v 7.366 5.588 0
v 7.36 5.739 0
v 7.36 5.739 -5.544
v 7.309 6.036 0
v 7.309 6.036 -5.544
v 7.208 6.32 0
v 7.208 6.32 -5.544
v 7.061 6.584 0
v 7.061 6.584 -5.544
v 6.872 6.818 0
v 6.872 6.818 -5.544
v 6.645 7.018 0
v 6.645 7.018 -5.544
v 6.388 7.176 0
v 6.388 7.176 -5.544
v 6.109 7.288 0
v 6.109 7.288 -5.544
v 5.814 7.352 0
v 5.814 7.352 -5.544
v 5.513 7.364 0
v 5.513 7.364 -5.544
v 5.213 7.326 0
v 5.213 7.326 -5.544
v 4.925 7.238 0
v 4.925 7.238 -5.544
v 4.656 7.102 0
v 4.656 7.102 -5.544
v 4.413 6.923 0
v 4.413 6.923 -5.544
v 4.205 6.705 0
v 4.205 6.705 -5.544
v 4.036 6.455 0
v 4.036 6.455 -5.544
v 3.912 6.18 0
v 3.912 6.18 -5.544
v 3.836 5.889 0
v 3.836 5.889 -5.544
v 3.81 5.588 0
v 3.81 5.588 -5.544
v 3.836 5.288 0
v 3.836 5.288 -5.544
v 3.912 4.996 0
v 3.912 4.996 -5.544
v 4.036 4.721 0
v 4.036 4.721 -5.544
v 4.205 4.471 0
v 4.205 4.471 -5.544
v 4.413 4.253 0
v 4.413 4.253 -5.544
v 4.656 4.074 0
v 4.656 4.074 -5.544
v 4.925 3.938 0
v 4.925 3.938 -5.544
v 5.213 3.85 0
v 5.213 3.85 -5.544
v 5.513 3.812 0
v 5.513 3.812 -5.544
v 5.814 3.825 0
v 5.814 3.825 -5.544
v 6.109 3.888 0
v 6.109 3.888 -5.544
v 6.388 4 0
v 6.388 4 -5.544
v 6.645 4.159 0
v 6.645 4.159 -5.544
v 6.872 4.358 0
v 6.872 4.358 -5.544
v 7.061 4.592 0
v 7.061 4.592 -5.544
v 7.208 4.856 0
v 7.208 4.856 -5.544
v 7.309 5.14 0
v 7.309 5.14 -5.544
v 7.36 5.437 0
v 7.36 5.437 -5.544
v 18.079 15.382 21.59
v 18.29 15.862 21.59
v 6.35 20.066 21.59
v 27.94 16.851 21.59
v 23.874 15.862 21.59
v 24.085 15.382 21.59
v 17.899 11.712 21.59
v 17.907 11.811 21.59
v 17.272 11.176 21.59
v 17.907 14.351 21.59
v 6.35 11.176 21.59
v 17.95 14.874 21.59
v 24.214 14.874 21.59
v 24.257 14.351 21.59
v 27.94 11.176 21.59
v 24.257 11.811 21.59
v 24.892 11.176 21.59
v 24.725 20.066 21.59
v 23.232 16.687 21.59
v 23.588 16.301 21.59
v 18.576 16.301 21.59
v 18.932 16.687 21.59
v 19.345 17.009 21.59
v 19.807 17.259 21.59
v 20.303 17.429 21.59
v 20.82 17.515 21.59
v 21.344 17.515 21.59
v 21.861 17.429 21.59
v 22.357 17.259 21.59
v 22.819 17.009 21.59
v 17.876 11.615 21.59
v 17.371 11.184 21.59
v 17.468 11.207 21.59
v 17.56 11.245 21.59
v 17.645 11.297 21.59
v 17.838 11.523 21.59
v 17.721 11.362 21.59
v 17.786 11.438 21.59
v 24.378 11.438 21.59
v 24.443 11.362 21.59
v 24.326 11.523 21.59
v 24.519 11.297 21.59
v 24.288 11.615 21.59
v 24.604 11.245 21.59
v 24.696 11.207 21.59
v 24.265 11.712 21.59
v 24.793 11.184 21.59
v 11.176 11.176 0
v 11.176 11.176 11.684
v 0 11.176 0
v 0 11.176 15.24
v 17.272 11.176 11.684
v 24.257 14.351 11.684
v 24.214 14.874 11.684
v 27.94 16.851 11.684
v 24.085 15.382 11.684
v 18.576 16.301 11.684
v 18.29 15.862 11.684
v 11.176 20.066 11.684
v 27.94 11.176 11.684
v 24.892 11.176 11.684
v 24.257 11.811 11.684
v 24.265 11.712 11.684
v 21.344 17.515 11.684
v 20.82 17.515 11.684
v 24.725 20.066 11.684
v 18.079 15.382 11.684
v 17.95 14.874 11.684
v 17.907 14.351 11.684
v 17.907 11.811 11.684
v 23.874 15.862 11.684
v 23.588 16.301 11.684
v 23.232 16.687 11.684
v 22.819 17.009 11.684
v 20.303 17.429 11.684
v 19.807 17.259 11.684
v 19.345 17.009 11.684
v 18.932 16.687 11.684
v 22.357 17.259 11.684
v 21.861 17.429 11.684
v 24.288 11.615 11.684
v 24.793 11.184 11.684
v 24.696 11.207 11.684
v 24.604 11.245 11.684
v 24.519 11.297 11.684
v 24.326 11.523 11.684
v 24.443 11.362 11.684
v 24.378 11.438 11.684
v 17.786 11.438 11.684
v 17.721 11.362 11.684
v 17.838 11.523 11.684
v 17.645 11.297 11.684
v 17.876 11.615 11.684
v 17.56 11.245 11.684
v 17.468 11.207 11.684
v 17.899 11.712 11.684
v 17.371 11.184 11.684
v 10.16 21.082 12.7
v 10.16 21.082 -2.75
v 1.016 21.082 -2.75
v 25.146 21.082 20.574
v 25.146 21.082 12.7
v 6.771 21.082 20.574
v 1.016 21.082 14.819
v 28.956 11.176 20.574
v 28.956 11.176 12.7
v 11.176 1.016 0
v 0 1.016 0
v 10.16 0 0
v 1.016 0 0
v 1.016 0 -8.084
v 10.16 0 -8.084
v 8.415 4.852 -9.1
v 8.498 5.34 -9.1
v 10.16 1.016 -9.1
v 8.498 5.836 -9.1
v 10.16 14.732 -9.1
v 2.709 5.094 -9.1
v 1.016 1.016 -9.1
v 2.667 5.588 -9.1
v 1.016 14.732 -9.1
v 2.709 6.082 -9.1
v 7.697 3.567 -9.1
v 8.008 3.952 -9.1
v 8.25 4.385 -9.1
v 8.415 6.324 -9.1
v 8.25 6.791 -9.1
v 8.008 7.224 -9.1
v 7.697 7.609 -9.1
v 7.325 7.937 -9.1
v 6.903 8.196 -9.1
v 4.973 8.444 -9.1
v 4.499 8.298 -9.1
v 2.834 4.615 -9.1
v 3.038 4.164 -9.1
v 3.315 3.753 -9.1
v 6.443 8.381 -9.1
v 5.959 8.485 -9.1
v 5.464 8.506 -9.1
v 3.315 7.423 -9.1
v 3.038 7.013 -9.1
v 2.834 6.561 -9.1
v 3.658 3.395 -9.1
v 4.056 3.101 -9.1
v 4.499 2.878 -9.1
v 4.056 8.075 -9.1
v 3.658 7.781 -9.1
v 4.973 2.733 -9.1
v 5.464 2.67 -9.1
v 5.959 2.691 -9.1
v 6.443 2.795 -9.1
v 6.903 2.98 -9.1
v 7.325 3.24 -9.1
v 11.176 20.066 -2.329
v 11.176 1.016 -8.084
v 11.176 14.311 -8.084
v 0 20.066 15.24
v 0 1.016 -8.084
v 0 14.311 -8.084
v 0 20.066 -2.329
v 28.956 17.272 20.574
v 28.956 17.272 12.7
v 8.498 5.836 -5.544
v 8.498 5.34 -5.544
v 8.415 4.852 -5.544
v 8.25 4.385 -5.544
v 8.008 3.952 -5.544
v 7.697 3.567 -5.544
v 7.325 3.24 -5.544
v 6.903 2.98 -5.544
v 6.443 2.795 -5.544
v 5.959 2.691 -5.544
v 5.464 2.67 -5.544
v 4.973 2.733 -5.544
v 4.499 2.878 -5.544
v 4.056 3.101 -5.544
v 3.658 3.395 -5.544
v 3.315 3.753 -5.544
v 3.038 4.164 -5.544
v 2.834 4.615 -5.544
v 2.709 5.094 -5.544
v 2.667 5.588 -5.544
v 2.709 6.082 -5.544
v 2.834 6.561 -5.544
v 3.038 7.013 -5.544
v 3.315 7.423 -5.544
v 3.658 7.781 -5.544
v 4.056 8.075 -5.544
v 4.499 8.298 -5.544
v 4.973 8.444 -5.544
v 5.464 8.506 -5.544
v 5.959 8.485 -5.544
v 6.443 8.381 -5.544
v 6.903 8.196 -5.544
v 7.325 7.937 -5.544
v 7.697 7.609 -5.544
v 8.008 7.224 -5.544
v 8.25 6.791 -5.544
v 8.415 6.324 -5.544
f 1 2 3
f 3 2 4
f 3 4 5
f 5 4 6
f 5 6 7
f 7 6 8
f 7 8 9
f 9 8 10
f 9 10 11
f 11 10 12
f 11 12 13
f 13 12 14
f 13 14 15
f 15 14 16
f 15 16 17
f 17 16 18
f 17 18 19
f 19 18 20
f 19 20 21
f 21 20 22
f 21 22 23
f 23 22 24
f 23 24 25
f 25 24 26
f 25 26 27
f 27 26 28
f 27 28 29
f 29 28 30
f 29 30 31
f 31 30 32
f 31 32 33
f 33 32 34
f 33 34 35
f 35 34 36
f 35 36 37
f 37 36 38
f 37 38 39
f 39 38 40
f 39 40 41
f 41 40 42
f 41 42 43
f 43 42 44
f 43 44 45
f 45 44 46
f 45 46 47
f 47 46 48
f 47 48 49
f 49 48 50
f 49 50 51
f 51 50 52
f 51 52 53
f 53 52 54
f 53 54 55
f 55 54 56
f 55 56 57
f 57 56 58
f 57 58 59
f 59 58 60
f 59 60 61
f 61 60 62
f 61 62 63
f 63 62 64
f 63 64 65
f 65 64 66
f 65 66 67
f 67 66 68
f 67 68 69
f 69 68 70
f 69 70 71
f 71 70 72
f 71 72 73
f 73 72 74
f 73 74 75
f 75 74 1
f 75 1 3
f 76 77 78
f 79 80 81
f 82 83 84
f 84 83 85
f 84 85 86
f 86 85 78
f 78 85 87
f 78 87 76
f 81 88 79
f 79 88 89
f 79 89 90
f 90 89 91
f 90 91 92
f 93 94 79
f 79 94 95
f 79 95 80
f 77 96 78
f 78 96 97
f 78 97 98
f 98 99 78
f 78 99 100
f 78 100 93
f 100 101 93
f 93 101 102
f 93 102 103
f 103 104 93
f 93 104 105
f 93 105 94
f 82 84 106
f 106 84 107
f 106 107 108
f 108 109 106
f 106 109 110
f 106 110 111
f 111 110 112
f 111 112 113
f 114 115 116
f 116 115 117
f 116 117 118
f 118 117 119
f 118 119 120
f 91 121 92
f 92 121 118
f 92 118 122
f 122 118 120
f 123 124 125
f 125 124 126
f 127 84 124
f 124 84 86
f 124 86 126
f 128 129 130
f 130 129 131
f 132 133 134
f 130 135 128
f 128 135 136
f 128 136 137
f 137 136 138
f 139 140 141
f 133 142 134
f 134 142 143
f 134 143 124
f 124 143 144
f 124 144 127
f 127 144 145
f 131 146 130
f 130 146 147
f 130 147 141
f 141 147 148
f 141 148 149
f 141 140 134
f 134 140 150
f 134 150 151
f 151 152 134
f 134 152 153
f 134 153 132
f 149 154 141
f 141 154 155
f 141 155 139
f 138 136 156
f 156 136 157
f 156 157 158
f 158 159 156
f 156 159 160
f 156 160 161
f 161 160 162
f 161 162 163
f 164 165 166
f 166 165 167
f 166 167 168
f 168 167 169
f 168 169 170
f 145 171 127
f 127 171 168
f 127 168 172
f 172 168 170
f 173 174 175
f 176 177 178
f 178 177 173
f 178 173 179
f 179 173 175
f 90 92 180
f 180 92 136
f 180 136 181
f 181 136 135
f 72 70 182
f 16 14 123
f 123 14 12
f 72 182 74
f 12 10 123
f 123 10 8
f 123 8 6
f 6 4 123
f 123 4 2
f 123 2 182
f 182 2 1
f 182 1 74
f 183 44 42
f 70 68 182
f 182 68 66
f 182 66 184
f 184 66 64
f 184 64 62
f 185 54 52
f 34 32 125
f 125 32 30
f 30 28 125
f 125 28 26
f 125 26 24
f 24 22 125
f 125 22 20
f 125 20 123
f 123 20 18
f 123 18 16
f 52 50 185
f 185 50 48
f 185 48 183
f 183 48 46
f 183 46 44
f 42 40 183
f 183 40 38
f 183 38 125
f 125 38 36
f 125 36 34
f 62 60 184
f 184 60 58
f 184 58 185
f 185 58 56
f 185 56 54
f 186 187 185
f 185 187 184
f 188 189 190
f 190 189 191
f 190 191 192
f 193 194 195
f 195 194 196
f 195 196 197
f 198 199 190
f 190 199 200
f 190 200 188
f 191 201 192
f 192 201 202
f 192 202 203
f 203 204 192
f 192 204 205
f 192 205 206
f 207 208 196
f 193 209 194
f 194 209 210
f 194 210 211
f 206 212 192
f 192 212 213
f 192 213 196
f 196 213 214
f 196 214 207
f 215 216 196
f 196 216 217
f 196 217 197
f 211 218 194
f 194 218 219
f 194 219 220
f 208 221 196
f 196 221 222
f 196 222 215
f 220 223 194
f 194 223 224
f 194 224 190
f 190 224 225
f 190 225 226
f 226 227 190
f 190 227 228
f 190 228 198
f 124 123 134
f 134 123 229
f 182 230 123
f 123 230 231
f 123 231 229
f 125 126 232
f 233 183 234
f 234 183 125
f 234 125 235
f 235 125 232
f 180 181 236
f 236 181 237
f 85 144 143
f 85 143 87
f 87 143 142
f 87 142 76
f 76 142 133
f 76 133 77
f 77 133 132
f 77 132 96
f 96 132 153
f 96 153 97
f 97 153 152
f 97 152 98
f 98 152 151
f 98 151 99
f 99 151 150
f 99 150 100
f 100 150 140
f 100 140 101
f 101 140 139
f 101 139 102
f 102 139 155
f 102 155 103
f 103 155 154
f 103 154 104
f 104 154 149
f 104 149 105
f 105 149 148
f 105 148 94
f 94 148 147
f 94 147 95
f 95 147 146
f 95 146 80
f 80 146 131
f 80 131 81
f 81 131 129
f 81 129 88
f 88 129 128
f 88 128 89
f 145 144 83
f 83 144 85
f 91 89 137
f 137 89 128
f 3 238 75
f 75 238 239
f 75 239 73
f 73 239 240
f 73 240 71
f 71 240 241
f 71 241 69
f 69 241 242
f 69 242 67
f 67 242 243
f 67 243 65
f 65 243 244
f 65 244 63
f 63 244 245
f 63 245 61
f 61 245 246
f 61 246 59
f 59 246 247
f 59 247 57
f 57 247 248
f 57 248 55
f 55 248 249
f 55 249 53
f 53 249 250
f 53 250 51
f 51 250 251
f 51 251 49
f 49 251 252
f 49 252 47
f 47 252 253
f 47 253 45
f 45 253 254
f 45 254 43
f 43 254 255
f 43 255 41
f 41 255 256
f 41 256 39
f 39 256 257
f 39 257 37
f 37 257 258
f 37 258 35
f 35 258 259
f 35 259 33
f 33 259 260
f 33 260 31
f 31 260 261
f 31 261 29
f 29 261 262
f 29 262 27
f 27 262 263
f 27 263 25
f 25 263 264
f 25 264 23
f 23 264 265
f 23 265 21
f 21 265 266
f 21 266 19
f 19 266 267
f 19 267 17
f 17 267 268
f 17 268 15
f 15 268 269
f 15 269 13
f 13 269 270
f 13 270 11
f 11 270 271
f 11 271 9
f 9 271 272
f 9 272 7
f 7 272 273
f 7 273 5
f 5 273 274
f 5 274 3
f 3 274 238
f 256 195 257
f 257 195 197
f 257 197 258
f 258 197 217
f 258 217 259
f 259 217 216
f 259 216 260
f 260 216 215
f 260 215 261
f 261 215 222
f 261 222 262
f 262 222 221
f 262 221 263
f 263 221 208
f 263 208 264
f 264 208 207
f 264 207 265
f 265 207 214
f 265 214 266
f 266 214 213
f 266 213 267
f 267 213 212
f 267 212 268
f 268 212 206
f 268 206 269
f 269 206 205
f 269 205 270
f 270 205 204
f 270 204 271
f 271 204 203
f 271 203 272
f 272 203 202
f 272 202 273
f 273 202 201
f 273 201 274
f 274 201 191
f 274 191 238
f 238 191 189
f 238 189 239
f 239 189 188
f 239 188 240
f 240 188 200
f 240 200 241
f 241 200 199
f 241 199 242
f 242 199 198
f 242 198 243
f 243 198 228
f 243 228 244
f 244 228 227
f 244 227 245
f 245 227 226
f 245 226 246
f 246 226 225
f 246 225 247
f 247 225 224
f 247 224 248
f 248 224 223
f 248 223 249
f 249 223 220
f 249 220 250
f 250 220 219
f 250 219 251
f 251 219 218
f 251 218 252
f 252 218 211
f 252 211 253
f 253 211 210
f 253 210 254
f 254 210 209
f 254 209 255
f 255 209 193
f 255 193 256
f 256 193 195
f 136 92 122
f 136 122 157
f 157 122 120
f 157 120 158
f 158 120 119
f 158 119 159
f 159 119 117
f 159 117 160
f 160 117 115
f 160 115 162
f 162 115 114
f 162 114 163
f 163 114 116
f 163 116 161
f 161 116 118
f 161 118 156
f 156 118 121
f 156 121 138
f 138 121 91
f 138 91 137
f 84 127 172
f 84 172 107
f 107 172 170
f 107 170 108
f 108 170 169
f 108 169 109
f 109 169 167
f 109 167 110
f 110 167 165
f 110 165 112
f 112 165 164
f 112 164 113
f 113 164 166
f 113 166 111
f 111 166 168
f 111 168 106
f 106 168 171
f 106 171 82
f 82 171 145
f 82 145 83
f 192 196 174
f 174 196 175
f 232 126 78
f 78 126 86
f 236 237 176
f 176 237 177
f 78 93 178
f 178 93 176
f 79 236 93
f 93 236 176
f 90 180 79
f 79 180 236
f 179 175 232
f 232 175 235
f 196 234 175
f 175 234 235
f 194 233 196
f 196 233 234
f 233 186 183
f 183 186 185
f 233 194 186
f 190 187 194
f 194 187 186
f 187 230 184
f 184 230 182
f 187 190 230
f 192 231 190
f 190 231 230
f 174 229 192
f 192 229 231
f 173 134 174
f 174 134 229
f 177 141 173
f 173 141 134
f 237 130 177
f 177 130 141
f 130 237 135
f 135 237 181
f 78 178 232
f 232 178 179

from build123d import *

# Parameters (mm, degrees)
BOSS_EXTRUDE1_DEPTH = 11.176
SKETCH2_W           = 9.906
SKETCH2_H           = 9.906
BOSS_EXTRUDE2_DEPTH = 17.78
CUT_EXTRUDE1_REACH  = 43.411
SKETCH3_R           = 3.175
CUT_EXTRUDE2_REACH  = 49.167
SKETCH4_R           = 1.778
SKETCH5_R           = 2.921
CUT_EXTRUDE3_DEPTH  = 3.556
FILLET8_R           = 0.635
CHAMFER1_SIZE       = 6.35
CHAMFER2_SIZE       = 6.35
CHAMFER3_SIZE       = 3.81
CHAMFER4_SIZE       = 1.016
CHAMFER5_SIZE       = 1.016


# Read off the part's stored shape, not the designer's step: Boss-Extrude1
with BuildPart() as part:
    # Boss-Extrude1 outline → Boss-Extrude1 (new body)
    with BuildSketch(Plane(origin=(0, 0, 0), x_dir=(0, 0, -1), z_dir=(1, 0, 0))):
        Polygon((9.099769579, 0.0001), (9.099769579, 21.082), (-21.59, 21.082), (-21.59, 11.176), (0, 11.176), (0, 0.0001), align=None)
    extrude(amount=BOSS_EXTRUDE1_DEPTH)

    # Sketch2 → Boss-Extrude2 (add)
    with BuildSketch(Plane(origin=(11.176, 0, 0), x_dir=(0, 0, -1), z_dir=(1, 0, 0))):
        with Locations((-16.637, 16.129)):
            Rectangle(SKETCH2_W, SKETCH2_H)
    extrude(amount=BOSS_EXTRUDE2_DEPTH)

    # Sketch3 → Cut-Extrude1 (cut, up to next)
    with BuildSketch(Plane(origin=(0, 0, 11.684), x_dir=(-1, 0, 0), z_dir=(0, 0, -1)), mode=Mode.PRIVATE) as cut_extrude1_sk1:
        with Locations((-21.082, 14.351)):
            Circle(SKETCH3_R)
    cut_extrude1_tool1 = extrude(cut_extrude1_sk1.sketch, amount=-CUT_EXTRUDE1_REACH, mode=Mode.PRIVATE) & part.part
    # Sketch3 → Cut-Extrude1 (cut, up to next)
    with BuildSketch(Plane(origin=(0, 0, 11.684), x_dir=(-1, 0, 0), z_dir=(0, 0, -1)), mode=Mode.PRIVATE) as cut_extrude1_sk2:
        with BuildLine():
            ThreePointArc((-21.082, 11.176), (-23.32706403, 12.10593597), (-24.257, 14.351))
            Line((-24.257, 14.351), (-24.257, 11.176))
            Line((-24.257, 11.176), (-21.082, 11.176))
        make_face()
    cut_extrude1_tool2 = extrude(cut_extrude1_sk2.sketch, amount=-CUT_EXTRUDE1_REACH, mode=Mode.PRIVATE) & part.part
    # Sketch3 → Cut-Extrude1 (cut, up to next)
    with BuildSketch(Plane(origin=(0, 0, 11.684), x_dir=(-1, 0, 0), z_dir=(0, 0, -1)), mode=Mode.PRIVATE) as cut_extrude1_sk3:
        with BuildLine():
            Line((-17.907, 11.176), (-17.907, 14.351))
            ThreePointArc((-17.907, 14.351), (-18.83693597, 12.10593597), (-21.082, 11.176))
            Line((-21.082, 11.176), (-17.907, 11.176))
        make_face()
    cut_extrude1_tool3 = extrude(cut_extrude1_sk3.sketch, amount=-CUT_EXTRUDE1_REACH, mode=Mode.PRIVATE) & part.part
    add(cut_extrude1_tool1.solids().sort_by_distance((21.082, 14.351, 11.684))[0], mode=Mode.SUBTRACT)
    add(cut_extrude1_tool2.solids().sort_by_distance((23.547807, 11.885193, 11.684))[0], mode=Mode.SUBTRACT)
    add(cut_extrude1_tool3.solids().sort_by_distance((18.616193, 11.885193, 11.684))[0], mode=Mode.SUBTRACT)

    # Sketch4 → Cut-Extrude2 (cut, up to next)
    with BuildSketch(Plane(origin=(0, 0, -9.099769579), x_dir=(-1, 0, 0), z_dir=(0, 0, -1)), mode=Mode.PRIVATE) as cut_extrude2_sk1:
        with Locations((-5.588, 5.5881)):
            Circle(SKETCH4_R)
    cut_extrude2_tool1 = extrude(cut_extrude2_sk1.sketch, amount=-CUT_EXTRUDE2_REACH, mode=Mode.PRIVATE) & part.part
    add(cut_extrude2_tool1.solids().sort_by_distance((5.588, 5.5881, -9.09977))[0], mode=Mode.SUBTRACT)

    # Sketch5 → Cut-Extrude3 (cut)
    with BuildSketch(Plane(origin=(0, 0, -9.099769579), x_dir=(-1, 0, 0), z_dir=(0, 0, -1))):
        with Locations((-5.588, 5.5881)):
            Circle(SKETCH5_R)
    extrude(amount=-CUT_EXTRUDE3_DEPTH, mode=Mode.SUBTRACT)

    # Fillet8
    fillet8_edges = [part.edges().sort_by_distance(p)[0] for p in [
        (24.257, 11.176, 16.637),
        (17.907, 11.176, 16.637),
    ]]
    fillet(fillet8_edges, radius=FILLET8_R)

    # Chamfer1
    chamfer1_edges = [part.edges().sort_by_distance(p)[0] for p in [
        (5.588, 21.082, -9.099769579),
    ]]
    chamfer(chamfer1_edges, length=CHAMFER1_SIZE)

    # Chamfer2
    chamfer2_edges = [part.edges().sort_by_distance(p)[0] for p in [
        (0, 16.129, 21.59),
    ]]
    chamfer(chamfer2_edges, length=CHAMFER2_SIZE)

    # Chamfer3
    chamfer3_edges = [part.edges().sort_by_distance(p)[0] for p in [
        (28.956, 21.082, 16.637),
    ]]
    chamfer(chamfer3_edges, length=CHAMFER3_SIZE)

    # Chamfer4
    chamfer4_edges = [part.edges().sort_by_distance(p)[0] for p in [
        (28.956, 14.224, 21.59),
        (27.051, 19.177, 21.59),
        (15.748, 21.082, 21.59),
        (28.956, 14.224, 11.684),
        (27.051, 19.177, 11.684),
        (18.161, 21.082, 11.684),
        (11.176, 21.082, 4.46711521),
        (11.176, 17.907, -5.924769579),
        (0, 21.082, 6.24511521),
        (0, 17.907, -5.924769579),
        (0, 7.36605, -9.099769579),
        (11.176, 7.36605, -9.099769579),
        (0, 0.0001, -4.54988479),
        (5.588, 0.0001, -9.099769579),
        (11.176, 0.0001, -4.54988479),
    ]]
    chamfer(chamfer4_edges, length=CHAMFER4_SIZE)

    # Chamfer5
    chamfer5_edges = [part.edges().sort_by_distance(p)[0] for p in [
        (3.175, 21.082, 18.415),
    ]]
    chamfer(chamfer5_edges, length=CHAMFER5_SIZE)


solid = part.part
